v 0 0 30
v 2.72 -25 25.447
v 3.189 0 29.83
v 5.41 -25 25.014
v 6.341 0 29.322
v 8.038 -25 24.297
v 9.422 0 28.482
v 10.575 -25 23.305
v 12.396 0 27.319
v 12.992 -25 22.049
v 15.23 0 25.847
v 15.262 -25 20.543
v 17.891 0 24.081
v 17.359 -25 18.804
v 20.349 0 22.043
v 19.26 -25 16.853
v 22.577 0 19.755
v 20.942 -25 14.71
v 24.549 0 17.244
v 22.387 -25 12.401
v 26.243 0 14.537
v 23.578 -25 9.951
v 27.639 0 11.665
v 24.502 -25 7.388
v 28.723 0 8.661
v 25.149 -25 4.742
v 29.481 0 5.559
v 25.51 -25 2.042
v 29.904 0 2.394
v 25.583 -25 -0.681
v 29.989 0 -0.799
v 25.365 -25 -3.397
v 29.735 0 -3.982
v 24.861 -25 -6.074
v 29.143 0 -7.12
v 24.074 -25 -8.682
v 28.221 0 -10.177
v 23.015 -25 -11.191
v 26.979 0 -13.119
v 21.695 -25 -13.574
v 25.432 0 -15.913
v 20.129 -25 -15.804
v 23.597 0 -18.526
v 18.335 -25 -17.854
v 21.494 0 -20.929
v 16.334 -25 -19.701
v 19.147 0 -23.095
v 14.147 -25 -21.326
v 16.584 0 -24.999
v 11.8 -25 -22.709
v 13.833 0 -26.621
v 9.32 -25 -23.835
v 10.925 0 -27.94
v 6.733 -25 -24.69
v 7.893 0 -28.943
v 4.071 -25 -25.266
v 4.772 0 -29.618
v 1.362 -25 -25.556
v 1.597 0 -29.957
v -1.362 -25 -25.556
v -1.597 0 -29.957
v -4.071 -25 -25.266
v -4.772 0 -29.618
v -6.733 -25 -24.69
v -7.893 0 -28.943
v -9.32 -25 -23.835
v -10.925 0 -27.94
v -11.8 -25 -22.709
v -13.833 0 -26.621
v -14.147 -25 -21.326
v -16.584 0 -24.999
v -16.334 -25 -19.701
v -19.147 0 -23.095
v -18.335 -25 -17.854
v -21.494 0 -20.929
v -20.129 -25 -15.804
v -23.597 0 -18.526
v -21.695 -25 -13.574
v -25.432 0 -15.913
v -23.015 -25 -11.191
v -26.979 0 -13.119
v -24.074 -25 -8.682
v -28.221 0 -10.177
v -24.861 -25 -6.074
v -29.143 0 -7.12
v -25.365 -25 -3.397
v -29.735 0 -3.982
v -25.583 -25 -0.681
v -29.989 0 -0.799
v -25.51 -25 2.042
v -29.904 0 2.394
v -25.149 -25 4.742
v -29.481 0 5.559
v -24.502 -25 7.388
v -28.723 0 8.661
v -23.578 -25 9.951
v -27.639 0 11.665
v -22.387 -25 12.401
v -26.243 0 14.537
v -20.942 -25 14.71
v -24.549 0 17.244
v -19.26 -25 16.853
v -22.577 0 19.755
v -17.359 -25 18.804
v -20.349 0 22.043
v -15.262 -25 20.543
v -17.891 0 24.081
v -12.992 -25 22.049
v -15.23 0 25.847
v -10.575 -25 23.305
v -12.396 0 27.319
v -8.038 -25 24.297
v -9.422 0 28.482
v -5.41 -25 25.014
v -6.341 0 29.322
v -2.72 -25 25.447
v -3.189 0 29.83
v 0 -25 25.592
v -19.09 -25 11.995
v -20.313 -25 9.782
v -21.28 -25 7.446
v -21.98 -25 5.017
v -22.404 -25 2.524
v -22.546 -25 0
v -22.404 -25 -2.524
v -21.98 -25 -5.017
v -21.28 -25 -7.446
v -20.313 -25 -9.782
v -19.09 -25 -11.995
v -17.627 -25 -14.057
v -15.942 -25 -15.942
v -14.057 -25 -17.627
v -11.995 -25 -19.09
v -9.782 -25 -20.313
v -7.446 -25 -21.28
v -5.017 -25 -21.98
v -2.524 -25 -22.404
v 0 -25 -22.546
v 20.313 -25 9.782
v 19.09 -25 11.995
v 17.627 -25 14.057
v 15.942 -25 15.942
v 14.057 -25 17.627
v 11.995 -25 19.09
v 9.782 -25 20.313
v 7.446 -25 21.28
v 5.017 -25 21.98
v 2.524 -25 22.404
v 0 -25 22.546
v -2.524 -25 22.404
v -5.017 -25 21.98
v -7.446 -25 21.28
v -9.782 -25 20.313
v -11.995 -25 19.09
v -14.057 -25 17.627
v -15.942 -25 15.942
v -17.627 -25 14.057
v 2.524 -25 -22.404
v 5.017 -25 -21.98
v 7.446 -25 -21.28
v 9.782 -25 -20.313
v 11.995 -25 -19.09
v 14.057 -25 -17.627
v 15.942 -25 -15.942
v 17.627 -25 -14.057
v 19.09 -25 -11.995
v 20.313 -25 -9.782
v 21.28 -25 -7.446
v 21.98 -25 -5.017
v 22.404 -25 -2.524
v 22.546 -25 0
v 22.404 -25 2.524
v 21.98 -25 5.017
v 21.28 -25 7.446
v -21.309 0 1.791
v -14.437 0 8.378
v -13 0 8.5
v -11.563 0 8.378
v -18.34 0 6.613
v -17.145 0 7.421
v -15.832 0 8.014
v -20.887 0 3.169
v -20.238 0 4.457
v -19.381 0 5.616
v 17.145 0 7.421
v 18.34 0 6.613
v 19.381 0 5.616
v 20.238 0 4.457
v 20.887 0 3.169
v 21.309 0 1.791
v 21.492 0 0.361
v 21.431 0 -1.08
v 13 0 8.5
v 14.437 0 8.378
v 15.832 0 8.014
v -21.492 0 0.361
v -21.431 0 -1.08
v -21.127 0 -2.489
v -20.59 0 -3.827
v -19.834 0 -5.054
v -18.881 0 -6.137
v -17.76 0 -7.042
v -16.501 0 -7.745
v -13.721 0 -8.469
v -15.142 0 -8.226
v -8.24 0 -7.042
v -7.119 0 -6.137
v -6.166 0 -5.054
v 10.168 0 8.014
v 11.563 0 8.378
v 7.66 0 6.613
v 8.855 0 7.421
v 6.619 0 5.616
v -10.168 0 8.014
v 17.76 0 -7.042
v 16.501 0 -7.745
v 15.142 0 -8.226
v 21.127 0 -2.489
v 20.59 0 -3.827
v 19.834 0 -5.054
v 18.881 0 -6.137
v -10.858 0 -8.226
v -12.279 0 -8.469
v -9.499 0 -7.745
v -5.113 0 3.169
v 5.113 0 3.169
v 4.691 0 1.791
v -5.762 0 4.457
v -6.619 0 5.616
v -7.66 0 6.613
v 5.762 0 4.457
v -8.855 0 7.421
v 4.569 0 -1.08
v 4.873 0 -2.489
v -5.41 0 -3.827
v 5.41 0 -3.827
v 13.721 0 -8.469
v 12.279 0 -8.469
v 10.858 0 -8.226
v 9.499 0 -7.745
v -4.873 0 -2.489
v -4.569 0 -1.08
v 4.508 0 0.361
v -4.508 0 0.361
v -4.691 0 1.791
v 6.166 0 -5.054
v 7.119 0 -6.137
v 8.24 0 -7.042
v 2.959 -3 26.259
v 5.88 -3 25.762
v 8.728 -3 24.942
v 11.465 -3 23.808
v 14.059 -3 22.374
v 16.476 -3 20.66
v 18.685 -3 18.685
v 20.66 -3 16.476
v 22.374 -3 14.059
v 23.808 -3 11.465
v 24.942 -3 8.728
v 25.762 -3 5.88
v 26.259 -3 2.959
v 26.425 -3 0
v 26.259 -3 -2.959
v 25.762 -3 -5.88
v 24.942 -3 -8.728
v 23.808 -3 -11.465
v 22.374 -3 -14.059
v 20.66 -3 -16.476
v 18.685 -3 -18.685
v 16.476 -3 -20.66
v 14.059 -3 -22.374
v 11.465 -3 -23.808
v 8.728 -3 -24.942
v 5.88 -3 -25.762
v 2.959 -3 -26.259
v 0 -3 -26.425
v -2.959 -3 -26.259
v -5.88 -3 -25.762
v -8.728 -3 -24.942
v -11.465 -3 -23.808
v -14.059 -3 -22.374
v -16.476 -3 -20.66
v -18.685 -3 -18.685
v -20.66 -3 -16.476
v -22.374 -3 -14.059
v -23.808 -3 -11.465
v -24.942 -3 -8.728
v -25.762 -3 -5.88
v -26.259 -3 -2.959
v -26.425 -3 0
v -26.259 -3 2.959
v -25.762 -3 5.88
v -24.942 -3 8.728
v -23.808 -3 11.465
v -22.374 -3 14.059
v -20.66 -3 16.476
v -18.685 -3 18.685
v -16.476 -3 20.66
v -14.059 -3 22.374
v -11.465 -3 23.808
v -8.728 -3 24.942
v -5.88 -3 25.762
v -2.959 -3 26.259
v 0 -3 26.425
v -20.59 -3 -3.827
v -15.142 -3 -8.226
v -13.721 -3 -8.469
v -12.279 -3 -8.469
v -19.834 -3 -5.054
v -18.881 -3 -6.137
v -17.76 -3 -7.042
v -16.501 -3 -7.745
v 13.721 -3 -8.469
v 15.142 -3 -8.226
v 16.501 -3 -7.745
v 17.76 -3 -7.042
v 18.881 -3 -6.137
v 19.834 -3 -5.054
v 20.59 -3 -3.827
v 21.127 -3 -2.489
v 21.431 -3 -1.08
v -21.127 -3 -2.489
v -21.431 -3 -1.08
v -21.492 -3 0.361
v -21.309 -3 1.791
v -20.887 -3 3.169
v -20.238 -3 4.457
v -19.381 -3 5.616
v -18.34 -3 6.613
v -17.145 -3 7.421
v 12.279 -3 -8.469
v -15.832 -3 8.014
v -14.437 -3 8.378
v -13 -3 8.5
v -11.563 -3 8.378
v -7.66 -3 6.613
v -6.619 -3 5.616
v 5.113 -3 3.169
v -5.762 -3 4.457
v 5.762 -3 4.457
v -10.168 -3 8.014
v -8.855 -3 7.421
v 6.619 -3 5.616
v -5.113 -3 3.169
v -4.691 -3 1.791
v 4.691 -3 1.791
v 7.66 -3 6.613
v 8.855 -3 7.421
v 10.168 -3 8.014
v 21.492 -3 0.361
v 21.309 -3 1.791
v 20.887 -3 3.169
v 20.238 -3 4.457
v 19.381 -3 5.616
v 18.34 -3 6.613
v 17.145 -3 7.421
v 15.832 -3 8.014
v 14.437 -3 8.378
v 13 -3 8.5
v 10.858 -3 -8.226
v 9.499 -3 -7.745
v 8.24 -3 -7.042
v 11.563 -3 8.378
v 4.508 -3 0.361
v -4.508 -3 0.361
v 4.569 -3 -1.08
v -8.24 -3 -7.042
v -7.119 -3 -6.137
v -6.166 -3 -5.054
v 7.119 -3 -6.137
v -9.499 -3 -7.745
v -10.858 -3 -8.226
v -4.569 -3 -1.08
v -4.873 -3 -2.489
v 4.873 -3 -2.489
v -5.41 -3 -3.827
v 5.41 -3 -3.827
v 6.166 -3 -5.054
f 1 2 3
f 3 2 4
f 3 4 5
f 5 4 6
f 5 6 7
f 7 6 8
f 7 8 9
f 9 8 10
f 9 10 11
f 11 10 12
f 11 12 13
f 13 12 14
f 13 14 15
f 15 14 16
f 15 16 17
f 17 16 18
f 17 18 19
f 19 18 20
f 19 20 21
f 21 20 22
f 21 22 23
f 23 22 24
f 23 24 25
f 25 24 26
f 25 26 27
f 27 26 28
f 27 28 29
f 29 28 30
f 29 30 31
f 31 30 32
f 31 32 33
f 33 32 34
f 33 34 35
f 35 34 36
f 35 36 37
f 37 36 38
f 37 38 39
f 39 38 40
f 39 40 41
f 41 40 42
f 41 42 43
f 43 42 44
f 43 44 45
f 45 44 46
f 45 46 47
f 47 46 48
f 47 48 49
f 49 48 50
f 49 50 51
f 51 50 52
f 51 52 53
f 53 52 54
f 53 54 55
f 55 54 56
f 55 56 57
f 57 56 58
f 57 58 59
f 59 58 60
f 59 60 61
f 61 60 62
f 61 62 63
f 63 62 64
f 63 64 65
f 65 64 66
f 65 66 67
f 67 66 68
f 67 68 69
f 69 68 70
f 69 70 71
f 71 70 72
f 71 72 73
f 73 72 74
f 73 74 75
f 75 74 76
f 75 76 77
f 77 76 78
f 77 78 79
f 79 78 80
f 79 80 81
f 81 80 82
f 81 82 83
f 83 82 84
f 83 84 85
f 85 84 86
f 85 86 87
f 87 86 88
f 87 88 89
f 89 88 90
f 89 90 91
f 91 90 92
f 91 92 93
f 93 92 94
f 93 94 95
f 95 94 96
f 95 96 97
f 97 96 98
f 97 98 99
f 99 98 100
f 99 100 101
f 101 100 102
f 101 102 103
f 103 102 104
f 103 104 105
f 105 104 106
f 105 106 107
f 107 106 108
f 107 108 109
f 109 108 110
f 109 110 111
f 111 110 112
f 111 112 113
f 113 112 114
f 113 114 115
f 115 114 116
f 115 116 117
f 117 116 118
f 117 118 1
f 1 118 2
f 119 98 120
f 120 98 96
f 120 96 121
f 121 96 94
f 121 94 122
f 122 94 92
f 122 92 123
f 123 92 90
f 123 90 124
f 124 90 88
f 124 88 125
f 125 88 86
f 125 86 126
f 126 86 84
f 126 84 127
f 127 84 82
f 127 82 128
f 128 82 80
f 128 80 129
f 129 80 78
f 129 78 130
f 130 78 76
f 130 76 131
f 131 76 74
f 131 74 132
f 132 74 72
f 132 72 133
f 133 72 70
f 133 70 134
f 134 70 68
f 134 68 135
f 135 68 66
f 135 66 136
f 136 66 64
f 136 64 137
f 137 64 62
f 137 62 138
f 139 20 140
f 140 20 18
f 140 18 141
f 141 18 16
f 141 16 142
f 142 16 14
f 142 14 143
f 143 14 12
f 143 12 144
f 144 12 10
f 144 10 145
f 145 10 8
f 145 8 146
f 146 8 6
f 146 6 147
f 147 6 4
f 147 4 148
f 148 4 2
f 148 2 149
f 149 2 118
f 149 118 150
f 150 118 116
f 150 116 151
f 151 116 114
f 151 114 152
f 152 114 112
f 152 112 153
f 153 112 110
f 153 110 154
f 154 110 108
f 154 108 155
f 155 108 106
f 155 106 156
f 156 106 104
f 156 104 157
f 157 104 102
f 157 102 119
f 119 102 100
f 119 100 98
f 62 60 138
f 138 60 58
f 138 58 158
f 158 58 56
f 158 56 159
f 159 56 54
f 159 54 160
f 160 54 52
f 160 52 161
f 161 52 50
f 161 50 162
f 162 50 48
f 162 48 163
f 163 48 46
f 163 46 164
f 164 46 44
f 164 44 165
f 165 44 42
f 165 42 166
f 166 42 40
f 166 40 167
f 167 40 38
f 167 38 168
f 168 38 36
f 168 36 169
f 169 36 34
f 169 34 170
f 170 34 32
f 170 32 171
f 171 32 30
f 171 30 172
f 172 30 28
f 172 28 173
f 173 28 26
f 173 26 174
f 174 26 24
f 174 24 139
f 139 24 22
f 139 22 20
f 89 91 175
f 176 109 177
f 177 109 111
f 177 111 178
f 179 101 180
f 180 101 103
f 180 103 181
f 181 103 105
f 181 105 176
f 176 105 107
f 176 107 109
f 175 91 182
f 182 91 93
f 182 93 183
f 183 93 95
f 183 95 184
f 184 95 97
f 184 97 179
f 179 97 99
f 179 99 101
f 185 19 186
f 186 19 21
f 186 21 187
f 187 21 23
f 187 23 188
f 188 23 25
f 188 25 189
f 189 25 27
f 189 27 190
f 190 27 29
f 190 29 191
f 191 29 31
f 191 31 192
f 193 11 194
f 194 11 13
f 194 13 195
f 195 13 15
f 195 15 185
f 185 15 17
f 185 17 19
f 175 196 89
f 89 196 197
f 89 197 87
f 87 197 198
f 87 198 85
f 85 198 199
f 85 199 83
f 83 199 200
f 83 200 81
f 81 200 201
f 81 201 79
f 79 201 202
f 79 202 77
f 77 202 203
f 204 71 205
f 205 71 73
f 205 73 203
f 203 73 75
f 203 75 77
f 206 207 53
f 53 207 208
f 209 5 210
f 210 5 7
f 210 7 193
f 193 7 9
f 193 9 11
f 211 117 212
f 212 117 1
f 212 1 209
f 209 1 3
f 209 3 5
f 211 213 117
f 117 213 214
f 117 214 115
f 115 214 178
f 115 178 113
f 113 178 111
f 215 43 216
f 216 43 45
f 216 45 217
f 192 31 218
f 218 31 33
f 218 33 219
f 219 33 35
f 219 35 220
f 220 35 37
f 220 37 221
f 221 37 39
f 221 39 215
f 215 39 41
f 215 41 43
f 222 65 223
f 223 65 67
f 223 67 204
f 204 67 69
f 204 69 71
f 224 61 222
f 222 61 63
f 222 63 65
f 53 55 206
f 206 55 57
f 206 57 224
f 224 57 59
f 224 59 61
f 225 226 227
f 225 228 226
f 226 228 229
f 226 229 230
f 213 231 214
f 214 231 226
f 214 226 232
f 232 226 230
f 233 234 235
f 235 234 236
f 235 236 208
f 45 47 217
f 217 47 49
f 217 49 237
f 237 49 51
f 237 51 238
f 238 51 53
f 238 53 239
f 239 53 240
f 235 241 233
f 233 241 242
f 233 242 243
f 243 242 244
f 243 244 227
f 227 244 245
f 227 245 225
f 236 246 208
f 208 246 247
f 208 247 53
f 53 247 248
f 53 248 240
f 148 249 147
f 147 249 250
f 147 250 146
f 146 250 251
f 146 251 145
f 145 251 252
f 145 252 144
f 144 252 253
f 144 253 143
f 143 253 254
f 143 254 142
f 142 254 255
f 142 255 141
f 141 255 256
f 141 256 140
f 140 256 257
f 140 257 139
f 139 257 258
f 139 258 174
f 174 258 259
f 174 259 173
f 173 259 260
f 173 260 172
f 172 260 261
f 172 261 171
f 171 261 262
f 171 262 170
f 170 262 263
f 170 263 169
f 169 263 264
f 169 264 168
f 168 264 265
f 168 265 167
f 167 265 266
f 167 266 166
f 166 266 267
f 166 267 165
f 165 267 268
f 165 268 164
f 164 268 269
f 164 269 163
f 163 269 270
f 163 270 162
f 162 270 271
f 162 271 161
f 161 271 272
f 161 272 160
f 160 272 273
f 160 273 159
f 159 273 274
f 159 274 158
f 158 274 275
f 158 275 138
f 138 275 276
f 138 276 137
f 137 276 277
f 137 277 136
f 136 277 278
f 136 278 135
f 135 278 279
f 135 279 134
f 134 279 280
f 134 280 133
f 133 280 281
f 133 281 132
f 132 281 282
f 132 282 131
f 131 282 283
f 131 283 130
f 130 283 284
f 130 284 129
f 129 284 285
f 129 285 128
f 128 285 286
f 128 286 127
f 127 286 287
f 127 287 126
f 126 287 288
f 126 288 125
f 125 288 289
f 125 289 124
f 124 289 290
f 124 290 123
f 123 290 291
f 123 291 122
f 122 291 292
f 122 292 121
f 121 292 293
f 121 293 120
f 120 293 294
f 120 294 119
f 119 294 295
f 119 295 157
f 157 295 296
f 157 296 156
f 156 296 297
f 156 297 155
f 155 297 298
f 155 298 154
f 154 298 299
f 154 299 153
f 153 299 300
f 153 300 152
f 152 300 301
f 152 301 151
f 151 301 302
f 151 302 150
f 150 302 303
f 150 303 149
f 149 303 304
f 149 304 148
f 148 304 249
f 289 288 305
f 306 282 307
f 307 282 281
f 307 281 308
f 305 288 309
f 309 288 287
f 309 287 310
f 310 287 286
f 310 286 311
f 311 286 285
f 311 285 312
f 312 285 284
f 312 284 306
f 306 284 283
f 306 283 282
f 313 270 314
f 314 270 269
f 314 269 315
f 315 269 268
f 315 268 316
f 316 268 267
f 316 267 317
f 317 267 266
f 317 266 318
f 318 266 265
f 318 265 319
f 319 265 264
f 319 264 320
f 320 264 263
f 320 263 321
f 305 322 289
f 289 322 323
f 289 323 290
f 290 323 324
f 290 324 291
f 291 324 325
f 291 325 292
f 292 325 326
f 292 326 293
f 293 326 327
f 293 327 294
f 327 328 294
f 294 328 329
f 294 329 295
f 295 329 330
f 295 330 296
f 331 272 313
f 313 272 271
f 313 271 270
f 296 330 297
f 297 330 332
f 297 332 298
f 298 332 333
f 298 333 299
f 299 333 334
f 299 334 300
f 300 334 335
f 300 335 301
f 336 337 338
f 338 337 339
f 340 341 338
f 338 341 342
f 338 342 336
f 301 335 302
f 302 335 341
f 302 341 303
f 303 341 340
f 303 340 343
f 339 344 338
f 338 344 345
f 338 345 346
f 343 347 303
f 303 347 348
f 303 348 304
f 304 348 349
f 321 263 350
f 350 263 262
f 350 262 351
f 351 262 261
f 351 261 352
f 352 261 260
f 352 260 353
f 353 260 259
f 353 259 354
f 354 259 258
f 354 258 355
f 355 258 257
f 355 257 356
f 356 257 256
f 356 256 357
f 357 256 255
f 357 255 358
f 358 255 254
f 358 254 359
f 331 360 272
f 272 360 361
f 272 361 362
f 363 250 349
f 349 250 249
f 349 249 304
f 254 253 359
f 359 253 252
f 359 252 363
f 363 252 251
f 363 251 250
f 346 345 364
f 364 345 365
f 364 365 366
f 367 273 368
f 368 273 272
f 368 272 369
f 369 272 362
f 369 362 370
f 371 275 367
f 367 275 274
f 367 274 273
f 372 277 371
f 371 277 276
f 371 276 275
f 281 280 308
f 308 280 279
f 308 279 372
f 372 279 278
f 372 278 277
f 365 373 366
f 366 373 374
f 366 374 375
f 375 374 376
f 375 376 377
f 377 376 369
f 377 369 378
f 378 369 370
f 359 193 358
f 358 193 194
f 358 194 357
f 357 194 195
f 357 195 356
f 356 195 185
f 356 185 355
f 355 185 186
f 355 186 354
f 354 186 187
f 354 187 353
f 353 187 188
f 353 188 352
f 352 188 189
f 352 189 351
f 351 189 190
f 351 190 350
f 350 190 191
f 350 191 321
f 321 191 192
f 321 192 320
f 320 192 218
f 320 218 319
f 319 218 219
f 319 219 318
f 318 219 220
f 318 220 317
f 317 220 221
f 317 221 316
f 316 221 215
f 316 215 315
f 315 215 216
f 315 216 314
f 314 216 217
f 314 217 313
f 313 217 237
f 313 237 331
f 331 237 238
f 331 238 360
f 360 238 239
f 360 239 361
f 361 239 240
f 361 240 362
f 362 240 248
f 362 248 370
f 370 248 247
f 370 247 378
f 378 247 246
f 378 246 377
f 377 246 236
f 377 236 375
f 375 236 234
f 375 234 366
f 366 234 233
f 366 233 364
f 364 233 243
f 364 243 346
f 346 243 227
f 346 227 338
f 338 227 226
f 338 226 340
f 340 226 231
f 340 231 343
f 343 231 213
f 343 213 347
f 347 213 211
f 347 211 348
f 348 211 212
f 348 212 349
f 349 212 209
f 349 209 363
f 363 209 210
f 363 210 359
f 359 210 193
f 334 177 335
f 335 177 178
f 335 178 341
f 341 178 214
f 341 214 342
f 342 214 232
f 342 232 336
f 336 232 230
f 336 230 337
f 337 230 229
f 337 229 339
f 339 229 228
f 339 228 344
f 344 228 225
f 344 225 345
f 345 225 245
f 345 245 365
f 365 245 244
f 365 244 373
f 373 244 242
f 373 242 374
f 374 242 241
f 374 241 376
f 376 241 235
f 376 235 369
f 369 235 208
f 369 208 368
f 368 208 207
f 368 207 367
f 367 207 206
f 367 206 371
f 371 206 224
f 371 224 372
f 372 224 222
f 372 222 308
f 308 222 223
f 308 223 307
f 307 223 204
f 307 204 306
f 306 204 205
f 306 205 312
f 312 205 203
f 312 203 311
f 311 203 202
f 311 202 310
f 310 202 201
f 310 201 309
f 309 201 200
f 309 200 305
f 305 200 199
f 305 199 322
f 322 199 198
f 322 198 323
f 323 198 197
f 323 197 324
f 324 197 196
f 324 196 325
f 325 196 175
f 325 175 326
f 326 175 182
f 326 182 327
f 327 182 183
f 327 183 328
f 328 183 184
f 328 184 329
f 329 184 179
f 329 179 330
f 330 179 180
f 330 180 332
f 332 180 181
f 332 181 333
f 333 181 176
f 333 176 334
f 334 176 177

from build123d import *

# Parameters (mm, degrees)
SKETCH1_R           = 30
BOSS_EXTRUDE1_DEPTH = 25
DRAFT1_ANGLE        = -10
SHELL2_T            = -3
SKETCH1_4_R         = 8.5
CUT_EXTRUDE2_DEPTH  = 3


with BuildPart() as part:
    # Sketch1 → Boss-Extrude1 (new body)
    with BuildSketch(Plane(origin=(0, 0, 0), x_dir=(1, 0, 0), z_dir=(0, 1, 0))):
        with Locations(Location((0, 0, 0), (0, 0, 270))):
            Circle(SKETCH1_R)
    extrude(amount=-BOSS_EXTRUDE1_DEPTH)

    # Draft1
    draft1_faces = [part.faces().sort_by_distance(p)[0] for p in [
        (0, -12.5, -30),
    ]]
    draft(draft1_faces, Plane.ZX, DRAFT1_ANGLE)

    # Shell2
    shell2_openings = [part.faces().sort_by_distance(p)[0] for p in [
        (0, -25, 0),
    ]]
    offset(amount=SHELL2_T, openings=shell2_openings, kind=Kind.INTERSECTION)

    # Sketch1<4> → Cut-Extrude2 (cut)
    with BuildSketch(Plane(origin=(0, 0, 0), x_dir=(1, 0, 0), z_dir=(0, 1, 0))):
        with Locations(Location((-13, 0, 0), (0, 0, 270))):
            Circle(SKETCH1_4_R)
        with Locations(Location((13, 0, 0), (0, 0, 270))):
            Circle(SKETCH1_4_R)
    extrude(amount=-CUT_EXTRUDE2_DEPTH, mode=Mode.SUBTRACT)


solid = part.part
